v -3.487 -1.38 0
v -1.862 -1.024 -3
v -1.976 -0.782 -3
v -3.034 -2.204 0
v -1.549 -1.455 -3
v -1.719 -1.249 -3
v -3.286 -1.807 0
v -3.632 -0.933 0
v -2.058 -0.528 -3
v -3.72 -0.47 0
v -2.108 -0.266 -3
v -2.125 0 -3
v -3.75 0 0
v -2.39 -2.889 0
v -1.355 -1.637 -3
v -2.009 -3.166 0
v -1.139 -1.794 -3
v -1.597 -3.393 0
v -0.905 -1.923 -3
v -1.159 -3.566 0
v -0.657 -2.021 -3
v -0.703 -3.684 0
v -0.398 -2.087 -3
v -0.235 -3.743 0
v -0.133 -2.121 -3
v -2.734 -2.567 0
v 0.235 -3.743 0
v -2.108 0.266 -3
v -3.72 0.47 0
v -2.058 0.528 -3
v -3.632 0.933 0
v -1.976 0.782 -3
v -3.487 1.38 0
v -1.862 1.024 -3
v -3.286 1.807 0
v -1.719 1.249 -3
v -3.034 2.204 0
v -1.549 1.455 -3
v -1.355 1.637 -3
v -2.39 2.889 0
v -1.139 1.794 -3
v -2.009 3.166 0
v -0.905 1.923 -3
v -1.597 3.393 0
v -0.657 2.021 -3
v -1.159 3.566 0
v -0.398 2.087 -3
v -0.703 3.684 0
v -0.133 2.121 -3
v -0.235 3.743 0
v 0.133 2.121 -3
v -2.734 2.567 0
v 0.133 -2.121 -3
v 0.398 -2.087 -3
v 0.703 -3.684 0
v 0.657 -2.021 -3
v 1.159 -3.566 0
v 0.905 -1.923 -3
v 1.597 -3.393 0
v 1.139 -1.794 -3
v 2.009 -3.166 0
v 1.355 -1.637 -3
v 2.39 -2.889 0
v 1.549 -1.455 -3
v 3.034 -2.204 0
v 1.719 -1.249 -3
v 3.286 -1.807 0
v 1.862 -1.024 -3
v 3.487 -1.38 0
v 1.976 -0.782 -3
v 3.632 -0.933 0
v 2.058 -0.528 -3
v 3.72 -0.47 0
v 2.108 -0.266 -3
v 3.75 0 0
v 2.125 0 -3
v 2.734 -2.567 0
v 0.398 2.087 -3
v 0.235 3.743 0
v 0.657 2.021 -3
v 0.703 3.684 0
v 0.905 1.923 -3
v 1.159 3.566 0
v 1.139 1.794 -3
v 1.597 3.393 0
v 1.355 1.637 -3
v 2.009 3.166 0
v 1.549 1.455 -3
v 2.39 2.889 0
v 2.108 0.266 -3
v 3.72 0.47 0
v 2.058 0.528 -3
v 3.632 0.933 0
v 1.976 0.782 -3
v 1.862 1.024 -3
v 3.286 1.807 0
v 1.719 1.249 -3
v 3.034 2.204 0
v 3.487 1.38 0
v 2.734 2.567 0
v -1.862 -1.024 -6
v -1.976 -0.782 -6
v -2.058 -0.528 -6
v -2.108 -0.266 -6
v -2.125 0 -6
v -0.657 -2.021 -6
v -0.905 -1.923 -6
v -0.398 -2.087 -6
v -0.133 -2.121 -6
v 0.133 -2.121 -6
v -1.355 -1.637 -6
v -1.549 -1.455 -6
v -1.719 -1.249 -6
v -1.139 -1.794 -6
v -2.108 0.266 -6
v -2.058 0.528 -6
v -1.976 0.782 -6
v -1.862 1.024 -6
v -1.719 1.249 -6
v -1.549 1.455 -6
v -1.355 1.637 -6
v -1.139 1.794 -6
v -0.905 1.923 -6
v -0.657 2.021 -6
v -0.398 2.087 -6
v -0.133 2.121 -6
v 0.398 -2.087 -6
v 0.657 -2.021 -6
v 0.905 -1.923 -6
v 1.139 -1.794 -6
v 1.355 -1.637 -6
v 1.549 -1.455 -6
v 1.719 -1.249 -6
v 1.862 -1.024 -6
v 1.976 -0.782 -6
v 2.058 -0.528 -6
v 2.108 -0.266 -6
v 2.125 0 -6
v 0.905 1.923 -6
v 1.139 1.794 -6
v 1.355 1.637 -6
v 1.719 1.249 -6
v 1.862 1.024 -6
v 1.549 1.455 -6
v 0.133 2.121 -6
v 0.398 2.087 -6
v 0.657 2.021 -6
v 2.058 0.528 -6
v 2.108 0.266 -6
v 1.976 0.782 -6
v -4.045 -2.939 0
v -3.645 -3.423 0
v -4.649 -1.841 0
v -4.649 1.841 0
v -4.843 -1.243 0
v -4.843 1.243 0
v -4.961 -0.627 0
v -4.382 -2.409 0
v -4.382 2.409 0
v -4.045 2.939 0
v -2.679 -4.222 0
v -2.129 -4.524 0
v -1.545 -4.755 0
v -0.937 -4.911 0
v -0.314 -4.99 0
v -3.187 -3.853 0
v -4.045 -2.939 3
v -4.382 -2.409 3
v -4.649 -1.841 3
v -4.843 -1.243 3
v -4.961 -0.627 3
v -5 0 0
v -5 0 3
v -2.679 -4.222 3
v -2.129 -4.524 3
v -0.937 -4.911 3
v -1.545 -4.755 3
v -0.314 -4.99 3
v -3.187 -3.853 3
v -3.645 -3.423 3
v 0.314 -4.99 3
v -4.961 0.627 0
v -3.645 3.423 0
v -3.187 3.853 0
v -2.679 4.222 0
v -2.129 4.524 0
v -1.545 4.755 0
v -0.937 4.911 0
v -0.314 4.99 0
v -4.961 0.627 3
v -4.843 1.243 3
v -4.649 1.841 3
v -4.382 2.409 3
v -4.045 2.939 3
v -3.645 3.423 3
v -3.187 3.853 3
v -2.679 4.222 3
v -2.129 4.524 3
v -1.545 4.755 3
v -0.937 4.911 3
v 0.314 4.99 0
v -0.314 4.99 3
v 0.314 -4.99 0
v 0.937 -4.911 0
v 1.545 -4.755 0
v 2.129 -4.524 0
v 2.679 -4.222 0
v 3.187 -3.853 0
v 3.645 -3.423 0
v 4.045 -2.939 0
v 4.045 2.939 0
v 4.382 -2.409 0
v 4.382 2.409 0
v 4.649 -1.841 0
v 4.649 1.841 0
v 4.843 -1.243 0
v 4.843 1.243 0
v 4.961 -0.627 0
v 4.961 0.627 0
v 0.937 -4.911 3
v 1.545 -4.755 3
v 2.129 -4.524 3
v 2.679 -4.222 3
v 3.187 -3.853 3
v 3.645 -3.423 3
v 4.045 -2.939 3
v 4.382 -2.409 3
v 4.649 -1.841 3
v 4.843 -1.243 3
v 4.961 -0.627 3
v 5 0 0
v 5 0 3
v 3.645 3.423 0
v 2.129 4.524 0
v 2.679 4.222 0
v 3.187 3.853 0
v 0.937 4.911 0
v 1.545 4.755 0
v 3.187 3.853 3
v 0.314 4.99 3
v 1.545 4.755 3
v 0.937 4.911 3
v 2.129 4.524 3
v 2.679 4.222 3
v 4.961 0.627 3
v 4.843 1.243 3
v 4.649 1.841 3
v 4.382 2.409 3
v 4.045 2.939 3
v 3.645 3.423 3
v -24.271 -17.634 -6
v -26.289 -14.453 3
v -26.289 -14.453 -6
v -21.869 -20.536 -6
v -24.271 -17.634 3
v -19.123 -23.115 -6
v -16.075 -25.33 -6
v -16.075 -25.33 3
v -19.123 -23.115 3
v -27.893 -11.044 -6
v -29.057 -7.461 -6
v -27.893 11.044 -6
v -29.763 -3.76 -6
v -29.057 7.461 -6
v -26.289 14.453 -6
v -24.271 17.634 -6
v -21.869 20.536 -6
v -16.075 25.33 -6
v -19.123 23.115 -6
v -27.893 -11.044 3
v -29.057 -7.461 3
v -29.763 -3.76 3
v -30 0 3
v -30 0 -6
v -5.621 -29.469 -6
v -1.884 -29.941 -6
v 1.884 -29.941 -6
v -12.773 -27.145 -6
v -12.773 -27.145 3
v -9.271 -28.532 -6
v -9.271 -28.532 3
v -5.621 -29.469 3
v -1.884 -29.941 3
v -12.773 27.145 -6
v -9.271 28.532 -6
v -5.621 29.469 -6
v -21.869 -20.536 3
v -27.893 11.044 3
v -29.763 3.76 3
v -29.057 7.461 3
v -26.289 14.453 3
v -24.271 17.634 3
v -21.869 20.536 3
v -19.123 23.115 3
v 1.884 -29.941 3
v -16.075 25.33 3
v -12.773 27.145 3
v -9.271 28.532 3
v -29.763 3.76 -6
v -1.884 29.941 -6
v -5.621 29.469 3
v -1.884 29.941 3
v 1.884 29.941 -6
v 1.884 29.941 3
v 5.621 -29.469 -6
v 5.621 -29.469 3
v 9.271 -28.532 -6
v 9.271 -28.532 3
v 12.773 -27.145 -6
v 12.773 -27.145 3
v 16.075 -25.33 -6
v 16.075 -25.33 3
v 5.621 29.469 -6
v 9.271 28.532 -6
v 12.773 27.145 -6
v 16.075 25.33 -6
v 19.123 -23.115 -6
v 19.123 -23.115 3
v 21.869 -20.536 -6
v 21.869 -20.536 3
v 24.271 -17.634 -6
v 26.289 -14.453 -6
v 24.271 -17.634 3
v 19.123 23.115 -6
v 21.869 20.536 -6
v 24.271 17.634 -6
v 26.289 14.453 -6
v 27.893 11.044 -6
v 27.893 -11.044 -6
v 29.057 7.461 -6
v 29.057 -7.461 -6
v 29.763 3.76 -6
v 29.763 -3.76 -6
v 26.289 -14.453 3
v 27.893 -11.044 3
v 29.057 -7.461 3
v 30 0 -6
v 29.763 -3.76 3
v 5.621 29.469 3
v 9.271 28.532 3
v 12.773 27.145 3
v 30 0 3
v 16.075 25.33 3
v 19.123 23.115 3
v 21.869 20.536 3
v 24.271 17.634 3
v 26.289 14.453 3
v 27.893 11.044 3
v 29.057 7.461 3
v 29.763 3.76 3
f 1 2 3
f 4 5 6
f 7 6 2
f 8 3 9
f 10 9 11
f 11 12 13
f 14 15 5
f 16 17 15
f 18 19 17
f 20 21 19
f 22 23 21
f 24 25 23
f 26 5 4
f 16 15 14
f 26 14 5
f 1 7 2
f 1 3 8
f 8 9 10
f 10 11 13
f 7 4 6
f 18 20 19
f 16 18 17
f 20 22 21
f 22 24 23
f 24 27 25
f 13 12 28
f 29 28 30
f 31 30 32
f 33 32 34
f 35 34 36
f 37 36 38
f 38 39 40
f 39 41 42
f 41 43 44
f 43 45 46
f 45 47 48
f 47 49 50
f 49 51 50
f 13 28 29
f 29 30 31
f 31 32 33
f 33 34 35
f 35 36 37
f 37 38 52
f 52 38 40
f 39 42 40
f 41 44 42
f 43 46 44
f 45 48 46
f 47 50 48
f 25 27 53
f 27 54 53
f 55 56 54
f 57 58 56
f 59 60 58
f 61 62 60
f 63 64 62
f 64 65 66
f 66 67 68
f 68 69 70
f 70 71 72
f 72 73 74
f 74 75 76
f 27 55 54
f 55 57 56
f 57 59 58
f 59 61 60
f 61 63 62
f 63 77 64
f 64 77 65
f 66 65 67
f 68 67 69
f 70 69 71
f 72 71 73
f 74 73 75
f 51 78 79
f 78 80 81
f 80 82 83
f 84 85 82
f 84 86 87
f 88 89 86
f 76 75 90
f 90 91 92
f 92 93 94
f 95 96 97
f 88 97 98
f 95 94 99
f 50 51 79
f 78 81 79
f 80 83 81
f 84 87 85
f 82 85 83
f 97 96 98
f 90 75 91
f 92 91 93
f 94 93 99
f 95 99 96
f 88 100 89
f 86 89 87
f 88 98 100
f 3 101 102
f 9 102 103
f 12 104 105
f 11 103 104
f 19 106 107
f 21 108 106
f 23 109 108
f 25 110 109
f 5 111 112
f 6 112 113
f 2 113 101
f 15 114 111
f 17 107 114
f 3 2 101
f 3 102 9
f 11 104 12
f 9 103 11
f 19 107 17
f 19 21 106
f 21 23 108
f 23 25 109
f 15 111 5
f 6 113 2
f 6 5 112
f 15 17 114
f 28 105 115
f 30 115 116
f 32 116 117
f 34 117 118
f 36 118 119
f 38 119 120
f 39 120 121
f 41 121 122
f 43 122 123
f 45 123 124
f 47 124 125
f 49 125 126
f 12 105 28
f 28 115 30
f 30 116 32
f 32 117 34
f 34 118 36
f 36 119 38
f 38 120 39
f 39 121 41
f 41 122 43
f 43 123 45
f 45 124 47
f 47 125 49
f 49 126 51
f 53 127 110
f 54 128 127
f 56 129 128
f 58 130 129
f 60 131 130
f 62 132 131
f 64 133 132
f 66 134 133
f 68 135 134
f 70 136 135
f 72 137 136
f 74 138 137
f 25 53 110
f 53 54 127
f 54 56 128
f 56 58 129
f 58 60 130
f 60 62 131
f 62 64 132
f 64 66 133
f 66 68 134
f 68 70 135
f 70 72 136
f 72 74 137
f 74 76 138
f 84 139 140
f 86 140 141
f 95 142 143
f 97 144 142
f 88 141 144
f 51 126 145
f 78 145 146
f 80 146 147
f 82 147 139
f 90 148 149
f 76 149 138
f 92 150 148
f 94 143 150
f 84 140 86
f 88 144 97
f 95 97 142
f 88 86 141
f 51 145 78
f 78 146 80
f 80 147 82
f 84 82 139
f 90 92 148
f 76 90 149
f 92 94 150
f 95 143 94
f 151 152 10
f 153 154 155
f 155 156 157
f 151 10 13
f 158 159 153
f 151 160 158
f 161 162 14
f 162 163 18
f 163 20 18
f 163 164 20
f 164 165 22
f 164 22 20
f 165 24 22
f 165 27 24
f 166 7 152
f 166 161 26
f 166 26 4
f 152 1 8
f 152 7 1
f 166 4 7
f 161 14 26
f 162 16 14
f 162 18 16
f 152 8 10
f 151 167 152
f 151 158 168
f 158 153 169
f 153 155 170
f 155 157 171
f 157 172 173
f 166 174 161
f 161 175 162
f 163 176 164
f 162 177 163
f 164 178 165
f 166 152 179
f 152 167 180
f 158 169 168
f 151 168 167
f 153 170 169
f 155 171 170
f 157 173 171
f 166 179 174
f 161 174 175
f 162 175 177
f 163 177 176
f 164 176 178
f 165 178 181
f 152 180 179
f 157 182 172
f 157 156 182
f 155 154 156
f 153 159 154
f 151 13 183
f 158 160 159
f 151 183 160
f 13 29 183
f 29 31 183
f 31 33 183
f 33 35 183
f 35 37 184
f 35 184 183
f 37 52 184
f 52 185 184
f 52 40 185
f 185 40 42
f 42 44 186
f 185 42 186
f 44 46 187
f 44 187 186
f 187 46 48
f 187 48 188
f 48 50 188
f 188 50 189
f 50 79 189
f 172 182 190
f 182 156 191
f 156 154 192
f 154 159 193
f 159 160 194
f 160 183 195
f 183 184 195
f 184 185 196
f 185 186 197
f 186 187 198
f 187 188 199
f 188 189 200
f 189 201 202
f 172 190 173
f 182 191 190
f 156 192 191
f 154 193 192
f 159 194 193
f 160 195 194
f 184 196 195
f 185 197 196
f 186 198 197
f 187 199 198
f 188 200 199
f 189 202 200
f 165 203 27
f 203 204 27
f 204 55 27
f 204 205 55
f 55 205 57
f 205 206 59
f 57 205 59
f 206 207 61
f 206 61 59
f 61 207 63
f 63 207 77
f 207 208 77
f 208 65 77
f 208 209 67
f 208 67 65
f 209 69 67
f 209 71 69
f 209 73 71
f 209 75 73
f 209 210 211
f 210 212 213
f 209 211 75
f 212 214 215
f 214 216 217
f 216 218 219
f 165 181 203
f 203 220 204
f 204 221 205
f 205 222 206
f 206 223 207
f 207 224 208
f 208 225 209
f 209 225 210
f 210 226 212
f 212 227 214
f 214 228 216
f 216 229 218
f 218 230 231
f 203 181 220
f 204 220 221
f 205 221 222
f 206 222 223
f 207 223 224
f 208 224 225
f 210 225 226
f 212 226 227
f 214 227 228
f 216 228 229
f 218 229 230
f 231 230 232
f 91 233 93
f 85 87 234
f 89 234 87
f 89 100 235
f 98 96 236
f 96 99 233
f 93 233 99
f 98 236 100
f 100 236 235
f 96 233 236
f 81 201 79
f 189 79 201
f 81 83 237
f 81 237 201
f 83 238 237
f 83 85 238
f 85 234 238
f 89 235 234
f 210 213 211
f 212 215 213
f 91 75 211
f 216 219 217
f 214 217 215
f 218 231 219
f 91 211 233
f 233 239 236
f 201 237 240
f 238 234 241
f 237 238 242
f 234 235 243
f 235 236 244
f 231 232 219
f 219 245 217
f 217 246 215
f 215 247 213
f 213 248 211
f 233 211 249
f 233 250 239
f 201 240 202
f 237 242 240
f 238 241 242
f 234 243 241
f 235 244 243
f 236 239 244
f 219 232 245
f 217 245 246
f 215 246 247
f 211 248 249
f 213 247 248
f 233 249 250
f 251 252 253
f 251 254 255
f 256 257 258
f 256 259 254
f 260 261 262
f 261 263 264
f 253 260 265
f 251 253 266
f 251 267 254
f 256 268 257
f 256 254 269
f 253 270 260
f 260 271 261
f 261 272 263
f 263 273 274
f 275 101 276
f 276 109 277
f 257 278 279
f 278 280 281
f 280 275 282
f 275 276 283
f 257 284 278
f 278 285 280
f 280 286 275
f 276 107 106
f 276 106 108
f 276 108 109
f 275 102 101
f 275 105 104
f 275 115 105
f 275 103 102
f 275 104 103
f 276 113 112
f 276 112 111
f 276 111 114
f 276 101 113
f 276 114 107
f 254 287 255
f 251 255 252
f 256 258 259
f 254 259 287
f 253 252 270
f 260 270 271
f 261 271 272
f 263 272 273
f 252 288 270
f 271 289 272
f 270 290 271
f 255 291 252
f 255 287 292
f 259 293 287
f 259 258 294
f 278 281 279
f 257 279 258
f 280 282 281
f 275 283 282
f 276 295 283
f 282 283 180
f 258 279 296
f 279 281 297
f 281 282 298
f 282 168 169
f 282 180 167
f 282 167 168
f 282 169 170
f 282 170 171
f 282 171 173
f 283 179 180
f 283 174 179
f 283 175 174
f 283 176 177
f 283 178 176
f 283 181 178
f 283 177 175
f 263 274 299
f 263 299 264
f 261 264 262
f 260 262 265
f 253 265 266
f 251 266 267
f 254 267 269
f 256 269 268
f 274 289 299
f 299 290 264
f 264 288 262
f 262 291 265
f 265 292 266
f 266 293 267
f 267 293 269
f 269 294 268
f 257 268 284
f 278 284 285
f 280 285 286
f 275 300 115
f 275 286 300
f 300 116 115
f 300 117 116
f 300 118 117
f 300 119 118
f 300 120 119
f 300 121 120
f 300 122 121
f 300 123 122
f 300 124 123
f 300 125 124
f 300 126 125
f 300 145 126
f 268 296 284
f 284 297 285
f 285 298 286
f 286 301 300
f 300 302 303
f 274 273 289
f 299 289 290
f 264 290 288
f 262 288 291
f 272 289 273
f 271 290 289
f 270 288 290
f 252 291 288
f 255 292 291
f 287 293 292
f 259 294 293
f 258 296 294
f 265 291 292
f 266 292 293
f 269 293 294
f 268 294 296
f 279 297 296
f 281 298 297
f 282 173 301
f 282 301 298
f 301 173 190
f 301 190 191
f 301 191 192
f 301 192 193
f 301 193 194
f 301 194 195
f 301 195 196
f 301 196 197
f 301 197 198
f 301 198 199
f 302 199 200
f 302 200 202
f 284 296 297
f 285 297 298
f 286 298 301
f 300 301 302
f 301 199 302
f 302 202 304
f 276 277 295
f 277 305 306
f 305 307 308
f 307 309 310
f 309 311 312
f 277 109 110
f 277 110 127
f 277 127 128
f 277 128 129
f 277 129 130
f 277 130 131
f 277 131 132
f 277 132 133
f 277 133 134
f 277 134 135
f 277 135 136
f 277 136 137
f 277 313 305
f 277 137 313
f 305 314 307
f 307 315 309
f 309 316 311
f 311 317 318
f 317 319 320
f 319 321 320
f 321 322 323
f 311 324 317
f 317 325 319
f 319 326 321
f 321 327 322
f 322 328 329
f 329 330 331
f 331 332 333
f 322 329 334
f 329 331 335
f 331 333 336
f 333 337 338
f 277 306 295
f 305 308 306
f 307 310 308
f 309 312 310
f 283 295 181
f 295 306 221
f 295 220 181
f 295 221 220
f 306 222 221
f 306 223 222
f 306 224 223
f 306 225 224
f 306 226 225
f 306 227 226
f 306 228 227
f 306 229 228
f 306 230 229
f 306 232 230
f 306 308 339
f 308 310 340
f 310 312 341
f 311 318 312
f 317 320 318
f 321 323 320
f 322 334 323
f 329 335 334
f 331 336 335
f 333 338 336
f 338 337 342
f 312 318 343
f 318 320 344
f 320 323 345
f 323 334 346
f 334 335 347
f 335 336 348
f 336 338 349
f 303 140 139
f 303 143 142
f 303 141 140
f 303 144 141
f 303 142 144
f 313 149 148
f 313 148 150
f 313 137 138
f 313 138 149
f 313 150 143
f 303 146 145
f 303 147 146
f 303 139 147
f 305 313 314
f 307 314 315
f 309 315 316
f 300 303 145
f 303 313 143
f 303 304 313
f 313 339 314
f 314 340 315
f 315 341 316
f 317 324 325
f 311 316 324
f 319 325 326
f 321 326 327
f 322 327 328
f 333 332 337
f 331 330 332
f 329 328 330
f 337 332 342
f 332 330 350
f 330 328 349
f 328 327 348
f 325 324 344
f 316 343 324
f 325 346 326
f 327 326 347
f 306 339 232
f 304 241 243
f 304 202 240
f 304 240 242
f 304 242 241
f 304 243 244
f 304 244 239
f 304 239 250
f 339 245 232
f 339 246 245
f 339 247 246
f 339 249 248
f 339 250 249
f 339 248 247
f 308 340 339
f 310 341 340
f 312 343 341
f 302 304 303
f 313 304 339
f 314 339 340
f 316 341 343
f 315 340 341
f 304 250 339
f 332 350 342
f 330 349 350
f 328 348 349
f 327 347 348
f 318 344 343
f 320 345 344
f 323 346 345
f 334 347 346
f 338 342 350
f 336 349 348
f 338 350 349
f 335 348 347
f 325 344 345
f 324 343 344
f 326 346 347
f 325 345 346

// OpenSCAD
$fn = 50;


difference() {
	union() {
		translate(v = [0, 0, -6.0000000000]) {
			cylinder(h = 9, r = 30.0000000000);
		}
	}
	union() {
		translate(v = [0, 0, 0]) {
			rotate(a = [0, 0, 0]) {
				difference() {
					union() {
						translate(v = [0, 0, -9.0000000000]) {
							cylinder(h = 9, r = 2.0000000000);
						}
						translate(v = [0, 0, -3]) {
							cylinder(h = 3, r1 = 2.1250000000, r2 = 3.7500000000);
						}
						translate(v = [0, 0, -9.0000000000]) {
							cylinder(h = 9, r = 2.1250000000);
						}
						translate(v = [0, 0, -9.0000000000]) {
							cylinder(h = 9, r = 2.0000000000);
						}
					}
					union();
				}
			}
		}
		#cylinder(h = 3, r = 5.0000000000);
	}
}
